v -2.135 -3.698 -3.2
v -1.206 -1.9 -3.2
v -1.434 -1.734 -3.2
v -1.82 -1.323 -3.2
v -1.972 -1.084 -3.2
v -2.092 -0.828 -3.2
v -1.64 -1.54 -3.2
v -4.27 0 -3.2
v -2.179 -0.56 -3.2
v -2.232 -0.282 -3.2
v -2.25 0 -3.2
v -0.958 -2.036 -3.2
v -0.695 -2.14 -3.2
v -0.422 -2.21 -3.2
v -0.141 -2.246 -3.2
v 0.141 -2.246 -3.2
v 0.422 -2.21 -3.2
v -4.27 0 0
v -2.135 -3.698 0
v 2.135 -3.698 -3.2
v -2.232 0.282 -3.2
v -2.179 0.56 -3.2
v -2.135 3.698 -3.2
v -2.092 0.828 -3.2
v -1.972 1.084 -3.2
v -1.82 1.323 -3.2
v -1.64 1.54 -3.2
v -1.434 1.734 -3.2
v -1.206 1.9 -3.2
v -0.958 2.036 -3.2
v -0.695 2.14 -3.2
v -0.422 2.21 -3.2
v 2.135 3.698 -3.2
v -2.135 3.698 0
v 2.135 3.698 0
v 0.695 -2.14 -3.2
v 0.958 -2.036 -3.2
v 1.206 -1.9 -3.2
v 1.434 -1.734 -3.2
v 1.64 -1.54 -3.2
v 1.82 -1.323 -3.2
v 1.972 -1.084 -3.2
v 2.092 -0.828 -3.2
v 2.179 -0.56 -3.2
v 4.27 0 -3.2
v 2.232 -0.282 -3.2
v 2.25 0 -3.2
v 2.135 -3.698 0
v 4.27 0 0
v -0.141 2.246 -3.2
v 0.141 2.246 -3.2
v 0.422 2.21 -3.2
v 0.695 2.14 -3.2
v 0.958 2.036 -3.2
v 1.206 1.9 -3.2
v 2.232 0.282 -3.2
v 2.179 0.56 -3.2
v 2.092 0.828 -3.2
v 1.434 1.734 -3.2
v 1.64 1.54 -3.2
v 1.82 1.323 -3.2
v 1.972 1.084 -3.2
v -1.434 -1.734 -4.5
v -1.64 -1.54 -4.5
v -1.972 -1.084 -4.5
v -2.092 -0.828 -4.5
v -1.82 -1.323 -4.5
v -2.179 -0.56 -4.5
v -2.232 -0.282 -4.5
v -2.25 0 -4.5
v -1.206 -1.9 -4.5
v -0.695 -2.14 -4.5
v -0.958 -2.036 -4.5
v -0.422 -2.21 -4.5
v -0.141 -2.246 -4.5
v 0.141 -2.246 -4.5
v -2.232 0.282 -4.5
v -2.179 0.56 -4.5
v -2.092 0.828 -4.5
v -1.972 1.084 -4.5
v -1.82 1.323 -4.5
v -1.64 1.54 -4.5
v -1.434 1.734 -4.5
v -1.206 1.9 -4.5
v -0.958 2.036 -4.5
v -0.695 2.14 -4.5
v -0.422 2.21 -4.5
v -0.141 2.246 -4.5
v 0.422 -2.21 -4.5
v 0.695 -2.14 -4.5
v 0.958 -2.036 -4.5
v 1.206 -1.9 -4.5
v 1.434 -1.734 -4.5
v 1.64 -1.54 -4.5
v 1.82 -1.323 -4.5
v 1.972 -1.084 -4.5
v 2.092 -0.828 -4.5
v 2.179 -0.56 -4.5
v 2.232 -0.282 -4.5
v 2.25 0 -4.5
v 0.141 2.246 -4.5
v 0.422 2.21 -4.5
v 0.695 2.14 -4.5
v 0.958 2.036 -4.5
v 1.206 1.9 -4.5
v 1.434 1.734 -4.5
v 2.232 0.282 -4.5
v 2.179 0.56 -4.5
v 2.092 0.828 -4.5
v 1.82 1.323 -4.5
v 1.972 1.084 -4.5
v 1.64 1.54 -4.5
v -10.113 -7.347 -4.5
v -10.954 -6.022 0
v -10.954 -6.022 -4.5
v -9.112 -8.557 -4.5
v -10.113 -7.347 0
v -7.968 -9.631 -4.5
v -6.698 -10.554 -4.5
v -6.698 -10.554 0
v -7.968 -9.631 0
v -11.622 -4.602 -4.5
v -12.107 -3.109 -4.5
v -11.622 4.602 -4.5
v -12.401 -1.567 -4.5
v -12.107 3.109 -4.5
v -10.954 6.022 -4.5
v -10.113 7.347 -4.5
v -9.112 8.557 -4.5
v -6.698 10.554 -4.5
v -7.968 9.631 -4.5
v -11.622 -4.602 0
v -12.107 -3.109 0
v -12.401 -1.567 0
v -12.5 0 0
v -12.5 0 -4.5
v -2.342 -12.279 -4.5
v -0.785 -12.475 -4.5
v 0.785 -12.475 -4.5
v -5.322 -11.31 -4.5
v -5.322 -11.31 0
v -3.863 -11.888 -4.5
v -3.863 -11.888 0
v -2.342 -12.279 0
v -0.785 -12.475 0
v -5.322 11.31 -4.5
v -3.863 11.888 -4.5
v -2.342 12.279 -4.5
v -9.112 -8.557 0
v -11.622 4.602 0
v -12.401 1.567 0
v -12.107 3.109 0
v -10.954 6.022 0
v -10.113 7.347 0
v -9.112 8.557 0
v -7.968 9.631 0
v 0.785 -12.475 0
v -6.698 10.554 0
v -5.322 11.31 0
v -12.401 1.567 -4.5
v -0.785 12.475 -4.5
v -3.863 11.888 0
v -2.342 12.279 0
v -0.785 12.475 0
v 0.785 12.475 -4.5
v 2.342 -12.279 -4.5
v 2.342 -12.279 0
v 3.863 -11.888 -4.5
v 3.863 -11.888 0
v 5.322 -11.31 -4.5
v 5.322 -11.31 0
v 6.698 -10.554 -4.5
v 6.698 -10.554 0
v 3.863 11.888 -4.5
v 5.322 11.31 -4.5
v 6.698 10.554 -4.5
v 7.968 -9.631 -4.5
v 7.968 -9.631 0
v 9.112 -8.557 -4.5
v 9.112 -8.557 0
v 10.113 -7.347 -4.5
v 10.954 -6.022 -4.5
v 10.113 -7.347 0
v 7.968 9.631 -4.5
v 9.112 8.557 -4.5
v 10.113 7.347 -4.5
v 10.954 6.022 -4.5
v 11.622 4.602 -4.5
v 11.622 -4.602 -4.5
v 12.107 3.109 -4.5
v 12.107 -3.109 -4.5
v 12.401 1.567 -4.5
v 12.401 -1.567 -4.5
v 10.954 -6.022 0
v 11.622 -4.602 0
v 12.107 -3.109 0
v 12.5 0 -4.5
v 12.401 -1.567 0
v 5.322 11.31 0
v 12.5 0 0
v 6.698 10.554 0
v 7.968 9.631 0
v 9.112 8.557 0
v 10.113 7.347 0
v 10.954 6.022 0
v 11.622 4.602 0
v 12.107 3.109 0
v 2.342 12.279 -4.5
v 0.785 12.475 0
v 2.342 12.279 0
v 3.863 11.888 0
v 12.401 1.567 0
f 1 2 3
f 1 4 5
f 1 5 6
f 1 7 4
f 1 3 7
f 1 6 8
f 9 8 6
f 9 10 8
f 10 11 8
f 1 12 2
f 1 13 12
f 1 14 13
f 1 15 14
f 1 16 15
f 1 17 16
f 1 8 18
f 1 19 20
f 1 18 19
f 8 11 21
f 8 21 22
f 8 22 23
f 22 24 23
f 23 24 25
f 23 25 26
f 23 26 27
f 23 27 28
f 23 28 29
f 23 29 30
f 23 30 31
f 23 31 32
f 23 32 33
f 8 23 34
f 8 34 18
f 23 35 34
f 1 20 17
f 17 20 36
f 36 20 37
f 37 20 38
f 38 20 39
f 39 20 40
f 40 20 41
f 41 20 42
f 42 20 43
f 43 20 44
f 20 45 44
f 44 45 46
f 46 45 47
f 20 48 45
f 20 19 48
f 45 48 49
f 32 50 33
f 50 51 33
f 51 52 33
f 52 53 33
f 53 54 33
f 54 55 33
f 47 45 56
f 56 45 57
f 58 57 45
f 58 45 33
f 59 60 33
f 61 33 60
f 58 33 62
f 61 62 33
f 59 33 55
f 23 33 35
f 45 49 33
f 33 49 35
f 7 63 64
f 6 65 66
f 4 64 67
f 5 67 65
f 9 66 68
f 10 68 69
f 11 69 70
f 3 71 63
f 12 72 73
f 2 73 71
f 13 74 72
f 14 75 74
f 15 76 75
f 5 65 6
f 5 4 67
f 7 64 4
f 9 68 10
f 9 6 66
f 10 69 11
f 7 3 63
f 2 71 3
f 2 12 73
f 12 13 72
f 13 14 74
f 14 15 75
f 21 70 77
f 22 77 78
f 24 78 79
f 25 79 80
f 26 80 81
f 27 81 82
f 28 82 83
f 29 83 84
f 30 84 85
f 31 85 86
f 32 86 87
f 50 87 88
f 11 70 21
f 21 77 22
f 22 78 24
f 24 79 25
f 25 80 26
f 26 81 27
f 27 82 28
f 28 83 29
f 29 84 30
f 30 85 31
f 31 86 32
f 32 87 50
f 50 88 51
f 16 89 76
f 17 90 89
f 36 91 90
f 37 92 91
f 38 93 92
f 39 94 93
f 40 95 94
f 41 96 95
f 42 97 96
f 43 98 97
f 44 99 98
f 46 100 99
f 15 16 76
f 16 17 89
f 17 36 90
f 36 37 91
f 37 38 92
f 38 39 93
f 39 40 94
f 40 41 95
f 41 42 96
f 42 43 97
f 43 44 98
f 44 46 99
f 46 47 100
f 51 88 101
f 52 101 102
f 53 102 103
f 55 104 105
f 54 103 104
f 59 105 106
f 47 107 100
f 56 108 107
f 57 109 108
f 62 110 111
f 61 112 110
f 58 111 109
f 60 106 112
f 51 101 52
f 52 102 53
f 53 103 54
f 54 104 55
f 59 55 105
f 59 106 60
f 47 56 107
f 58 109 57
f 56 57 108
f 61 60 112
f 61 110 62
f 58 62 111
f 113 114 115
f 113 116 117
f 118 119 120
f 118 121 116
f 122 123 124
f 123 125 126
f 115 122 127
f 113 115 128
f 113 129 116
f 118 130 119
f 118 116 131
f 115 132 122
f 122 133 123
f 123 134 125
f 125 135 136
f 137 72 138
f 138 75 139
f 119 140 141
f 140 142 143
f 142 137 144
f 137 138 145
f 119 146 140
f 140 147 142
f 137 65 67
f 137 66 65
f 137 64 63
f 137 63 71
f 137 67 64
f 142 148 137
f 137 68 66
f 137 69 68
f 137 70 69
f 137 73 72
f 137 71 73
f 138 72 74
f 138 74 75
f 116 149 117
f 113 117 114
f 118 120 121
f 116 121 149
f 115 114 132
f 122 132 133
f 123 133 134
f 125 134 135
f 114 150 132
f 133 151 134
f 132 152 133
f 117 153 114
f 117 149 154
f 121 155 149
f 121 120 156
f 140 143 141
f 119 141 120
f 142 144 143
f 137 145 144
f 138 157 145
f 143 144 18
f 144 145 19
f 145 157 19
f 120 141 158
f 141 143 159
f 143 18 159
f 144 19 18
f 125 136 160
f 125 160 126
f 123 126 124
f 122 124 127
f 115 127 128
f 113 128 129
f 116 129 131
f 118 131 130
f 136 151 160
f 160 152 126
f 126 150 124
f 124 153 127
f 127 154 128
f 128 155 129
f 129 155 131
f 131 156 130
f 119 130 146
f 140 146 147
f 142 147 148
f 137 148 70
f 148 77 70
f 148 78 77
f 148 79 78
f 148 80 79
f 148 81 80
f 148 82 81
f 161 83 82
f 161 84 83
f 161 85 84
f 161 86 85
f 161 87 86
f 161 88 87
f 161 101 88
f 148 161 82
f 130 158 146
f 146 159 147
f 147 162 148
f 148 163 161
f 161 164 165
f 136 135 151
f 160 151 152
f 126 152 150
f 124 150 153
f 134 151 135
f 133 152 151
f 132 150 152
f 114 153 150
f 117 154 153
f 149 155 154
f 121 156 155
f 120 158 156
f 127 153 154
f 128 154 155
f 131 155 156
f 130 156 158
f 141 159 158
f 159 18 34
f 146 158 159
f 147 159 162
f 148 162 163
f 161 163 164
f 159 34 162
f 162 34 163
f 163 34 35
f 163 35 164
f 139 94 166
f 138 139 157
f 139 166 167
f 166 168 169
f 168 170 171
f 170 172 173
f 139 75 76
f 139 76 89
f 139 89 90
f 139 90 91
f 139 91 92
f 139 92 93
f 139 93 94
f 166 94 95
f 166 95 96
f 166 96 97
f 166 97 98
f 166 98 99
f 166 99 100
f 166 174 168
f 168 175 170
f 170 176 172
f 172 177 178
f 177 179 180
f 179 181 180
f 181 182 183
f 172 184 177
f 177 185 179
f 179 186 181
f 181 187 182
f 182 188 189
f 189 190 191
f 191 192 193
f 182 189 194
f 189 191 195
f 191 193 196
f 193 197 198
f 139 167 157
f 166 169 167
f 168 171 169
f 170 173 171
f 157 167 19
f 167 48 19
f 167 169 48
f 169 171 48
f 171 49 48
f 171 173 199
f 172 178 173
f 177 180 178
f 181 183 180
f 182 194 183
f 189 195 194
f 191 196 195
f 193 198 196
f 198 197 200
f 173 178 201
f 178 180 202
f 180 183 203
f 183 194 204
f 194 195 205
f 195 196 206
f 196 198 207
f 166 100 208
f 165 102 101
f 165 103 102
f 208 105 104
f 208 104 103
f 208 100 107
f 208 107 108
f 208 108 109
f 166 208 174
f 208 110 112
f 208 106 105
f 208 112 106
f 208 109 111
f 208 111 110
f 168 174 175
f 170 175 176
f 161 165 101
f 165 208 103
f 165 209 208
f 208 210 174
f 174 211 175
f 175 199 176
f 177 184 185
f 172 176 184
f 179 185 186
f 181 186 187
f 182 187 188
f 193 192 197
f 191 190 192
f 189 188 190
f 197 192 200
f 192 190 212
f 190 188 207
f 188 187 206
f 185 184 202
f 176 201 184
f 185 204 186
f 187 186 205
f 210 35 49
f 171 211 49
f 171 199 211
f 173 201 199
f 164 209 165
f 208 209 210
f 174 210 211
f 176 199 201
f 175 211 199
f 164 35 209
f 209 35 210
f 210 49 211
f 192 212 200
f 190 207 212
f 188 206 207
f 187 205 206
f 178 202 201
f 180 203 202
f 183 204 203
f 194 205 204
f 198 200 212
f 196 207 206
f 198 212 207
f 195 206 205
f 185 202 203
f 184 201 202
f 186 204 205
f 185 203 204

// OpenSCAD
$fn = 50;

difference() {
	union() {
		translate(v = [0, 0, -4.5]) {
			cylinder(h = 4.5, r = 12.5);
		}
	}
	union() {
		translate(v = [0, 0, 0]) {
			rotate(a = [0, 0, 0]) {
				difference() {
					union() {
						translate(v = [0, 0, -3.2]) {
							linear_extrude(height = 3.2) {
								polygon(points = [[4.2698, 0.0], [2.1349000000000005, 3.697755269078796], [-2.134899999999999, 3.6977552690787965], [-4.2698, 5.228996902999369e-16], [-2.134900000000002, -3.6977552690787956], [2.1348999999999974, -3.697755269078798]]);
							}
						}
					}
					union();
				}
			}
		}
		#translate(v = [0, 0, -100.0]) {
			cylinder(h = 200, r = 2.25);
		}
	}
}
